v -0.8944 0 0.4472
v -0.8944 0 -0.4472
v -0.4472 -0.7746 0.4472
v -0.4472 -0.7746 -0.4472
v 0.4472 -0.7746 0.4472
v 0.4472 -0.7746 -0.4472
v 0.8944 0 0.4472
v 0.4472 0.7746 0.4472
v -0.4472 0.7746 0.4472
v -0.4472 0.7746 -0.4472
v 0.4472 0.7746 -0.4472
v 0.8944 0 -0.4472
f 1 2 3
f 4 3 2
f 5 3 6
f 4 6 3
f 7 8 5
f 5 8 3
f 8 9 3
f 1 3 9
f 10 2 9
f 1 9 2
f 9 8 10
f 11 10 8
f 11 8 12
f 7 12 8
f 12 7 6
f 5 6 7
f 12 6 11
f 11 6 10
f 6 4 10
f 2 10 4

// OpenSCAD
polyhedron( points = [[-0.447213595513182, -0.774596669248552, 0.447213595469591], [-0.894427191015099, 1.03409562943143e-10, 0.447213595469591], [-0.447213595443628, 0.774596669254592, 0.447213595469591], [0.447213595513835, 0.774596669174273, 0.447213595469591], [0.894427190946201, -5.72170499558631e-11, 0.447213595469591], [0.447213595444285, -0.774596669248552, 0.447213595469591], [-0.447213595473025, -0.774596669178999, -0.447213595487875], [-0.894427190960244, 1.47504831077859e-10, -0.447213595378165], [-0.447213595403472, 0.774596669185033, -0.447213595487875], [0.447213595594155, 0.774596669104722, -0.447213595447718], [0.894427190865891, -5.72170499558631e-11, -0.447213595487875], [0.447213595444285, -0.774596669178999, -0.447213595528035]], faces = [[0, 1, 7, 6], [0, 6, 11, 5], [0, 5, 4, 3, 2, 1], [1, 2, 8, 7], [2, 3, 9, 8], [3, 4, 10, 9], [4, 5, 11, 10], [6, 7, 8, 9, 10, 11]]);
